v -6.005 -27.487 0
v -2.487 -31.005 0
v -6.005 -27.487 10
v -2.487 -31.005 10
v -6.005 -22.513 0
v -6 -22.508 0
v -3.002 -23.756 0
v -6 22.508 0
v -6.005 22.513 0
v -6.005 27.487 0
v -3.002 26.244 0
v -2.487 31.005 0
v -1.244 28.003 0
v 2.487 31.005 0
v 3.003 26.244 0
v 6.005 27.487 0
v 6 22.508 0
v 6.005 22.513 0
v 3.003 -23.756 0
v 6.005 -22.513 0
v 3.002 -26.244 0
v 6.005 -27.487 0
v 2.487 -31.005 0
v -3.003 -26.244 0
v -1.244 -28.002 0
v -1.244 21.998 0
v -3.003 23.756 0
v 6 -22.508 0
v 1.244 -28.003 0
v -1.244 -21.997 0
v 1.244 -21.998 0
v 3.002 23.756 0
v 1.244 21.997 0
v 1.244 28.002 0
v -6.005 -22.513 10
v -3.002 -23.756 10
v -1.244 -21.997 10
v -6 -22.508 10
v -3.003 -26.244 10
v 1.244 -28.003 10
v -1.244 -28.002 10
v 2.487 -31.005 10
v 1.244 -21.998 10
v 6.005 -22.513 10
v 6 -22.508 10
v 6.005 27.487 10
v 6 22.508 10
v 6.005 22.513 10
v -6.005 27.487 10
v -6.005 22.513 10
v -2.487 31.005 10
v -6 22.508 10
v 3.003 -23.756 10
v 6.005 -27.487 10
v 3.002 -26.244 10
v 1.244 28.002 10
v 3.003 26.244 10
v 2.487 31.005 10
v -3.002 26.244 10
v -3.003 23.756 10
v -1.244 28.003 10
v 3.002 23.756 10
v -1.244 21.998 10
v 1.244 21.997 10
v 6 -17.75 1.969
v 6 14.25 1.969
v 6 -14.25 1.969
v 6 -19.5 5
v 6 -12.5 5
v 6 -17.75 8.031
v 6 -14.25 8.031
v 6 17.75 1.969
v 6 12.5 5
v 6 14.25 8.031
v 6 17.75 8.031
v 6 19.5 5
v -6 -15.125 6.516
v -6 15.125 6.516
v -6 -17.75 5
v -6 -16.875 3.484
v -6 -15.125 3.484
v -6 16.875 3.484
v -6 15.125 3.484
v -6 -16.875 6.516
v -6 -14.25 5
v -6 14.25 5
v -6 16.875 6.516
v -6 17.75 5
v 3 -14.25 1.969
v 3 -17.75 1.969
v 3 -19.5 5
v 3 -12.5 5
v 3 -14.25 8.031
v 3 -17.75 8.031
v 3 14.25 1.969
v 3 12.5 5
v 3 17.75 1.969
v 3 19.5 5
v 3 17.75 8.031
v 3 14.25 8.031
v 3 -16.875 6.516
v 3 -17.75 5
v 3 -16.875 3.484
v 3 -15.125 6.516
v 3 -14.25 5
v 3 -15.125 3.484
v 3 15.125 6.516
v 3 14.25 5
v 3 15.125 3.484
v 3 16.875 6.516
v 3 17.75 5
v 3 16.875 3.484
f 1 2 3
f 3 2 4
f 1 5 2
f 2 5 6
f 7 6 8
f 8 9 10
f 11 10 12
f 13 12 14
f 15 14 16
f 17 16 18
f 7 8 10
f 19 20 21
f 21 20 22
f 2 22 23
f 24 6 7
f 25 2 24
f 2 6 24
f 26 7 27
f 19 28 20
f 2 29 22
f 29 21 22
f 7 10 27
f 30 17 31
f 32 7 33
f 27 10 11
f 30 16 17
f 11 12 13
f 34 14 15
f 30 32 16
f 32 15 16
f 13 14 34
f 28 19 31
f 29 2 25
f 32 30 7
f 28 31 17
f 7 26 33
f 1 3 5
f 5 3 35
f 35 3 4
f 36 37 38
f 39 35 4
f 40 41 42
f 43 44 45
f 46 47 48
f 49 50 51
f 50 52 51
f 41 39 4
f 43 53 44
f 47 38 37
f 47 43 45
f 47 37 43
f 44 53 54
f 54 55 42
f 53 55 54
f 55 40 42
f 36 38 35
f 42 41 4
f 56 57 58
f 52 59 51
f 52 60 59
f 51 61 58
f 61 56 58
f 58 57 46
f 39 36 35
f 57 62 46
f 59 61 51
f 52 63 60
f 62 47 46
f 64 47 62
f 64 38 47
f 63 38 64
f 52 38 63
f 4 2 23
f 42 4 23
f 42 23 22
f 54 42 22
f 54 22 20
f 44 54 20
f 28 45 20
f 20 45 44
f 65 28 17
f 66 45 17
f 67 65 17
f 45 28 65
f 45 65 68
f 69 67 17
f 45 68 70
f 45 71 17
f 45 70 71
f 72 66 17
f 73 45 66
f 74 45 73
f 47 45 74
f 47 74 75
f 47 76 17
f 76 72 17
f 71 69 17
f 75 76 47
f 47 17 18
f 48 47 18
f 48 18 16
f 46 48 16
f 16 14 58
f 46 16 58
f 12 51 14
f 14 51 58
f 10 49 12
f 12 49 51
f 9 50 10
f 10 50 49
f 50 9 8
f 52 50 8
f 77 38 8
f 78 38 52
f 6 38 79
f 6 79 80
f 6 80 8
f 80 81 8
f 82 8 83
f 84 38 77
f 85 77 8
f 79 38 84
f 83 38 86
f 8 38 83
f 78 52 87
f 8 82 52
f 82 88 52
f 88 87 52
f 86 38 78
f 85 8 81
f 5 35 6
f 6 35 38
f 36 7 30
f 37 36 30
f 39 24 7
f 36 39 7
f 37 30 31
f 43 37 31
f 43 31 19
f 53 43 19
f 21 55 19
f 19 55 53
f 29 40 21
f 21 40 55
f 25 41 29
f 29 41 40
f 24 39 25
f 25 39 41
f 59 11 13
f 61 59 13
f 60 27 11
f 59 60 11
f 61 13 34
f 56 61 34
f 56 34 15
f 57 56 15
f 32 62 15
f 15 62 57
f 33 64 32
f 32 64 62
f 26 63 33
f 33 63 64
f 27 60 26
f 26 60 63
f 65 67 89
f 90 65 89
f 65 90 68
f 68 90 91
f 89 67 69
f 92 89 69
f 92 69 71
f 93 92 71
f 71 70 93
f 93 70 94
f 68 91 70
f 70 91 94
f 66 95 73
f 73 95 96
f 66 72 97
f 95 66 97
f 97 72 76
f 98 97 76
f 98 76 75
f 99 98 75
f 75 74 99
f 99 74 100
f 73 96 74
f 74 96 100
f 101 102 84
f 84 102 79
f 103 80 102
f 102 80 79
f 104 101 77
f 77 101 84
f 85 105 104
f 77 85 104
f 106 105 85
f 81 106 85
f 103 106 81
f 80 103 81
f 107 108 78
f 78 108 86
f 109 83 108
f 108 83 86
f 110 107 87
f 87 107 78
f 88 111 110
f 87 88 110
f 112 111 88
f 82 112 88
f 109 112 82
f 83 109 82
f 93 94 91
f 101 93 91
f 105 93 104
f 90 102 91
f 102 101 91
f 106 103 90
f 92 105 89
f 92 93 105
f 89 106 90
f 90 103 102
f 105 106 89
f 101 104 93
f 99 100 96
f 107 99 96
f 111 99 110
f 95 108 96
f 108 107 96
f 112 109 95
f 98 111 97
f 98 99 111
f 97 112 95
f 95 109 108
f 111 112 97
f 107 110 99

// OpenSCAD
// file: configuration.scad
// default configuration
// m6 rods and nema14 motors

rod_size = 6;
rod_nut_size = 12; //12 for M6, 16 for M8
bearing_size = 12.5; //12 for LM6UU, 15 for LM8UU,LM8SUU
bearing_length = 20; //19 for LM6UU, 17 for LM8SUU, 24 for LM8UU
yz_motor_distance = 25;
motor_screw_spacing = 26; //26 for NEMA14, 31 for NEMA17
motor_casing = 38; //38 for NEMA14, 45 for NEMA17
end_height = 40;
bed_mount_height = 16;
//x_rod_spacing = motor_screw_spacing + 3 + rod_size;
x_rod_spacing = 30;
x_carriage_width = 70;
carriage_extruder_offset = 5;
pulley_size = 20;
idler_pulley_width = 10;
gusset_size = 15;
// main file
// y idler

include <configuration.scad>

module y_idler() difference() {
	linear_extrude(height = 10, convexity = 5) difference() {
		union() {
			square([rod_size * 2, motor_casing + rod_size * 2], center = true);
			for(side = [1, -1]) translate([0, side * (motor_casing / 2 + rod_size), rod_size / 2 + bearing_size / 2]) rotate(180 / 8) circle(rod_size * 13/12, h = yz_motor_distance + motor_casing + 20, center = true, $fn = 8);
		}
		for(side = [1, -1]) translate([0, side * (motor_casing / 2 + rod_size), rod_size / 2 + bearing_size / 2]) rotate(180 / 8) circle(rod_size * 13/24, h = yz_motor_distance + motor_casing + 20, center = true, $fn = 8);

	}
	rotate([90, 0, 90]) {
		for(side = [1, -1]) translate([side * (motor_casing / 2 - rod_size / 2), 5, -3]) {
			cylinder(r = 3 * 7/12, h = rod_size * 2, center = true, $fn = 6);
			translate([0, 0, rod_size]) cylinder(r = 3 * 7/6, h = 4, $fn = 6);
		}
		%translate([0, 5, -rod_size - idler_pulley_width / 2]) linear_extrude(height = 5, center = true, convexity = 5) for(side = [1, 0]) mirror([side, 0, 0]) {
			translate([-(motor_casing / 2 - rod_size / 2), 0, 0]) {
				intersection() {
					difference() {
						circle(pulley_size / 2 + 2);
						circle(pulley_size / 2);
					}
					square(pulley_size);
				}
				rotate(90) difference() {
					translate([2, 0, 0]) square([pulley_size / 2, 40]);
					square([pulley_size / 2, 40]);
				}
				rotate(-90) difference() {
					translate([0, 2, 0]) square([60 - yz_motor_distance / 2 - motor_screw_spacing / 2, pulley_size / 2]);
					square([60, pulley_size / 2]);
				}
			}
			translate([0, -(60 - yz_motor_distance / 2 - motor_screw_spacing / 2), 0]) difference() {
				circle(motor_casing / 2 - rod_size / 2 - pulley_size / 2);
				circle(motor_casing / 2 - rod_size / 2 - pulley_size / 2 - 2);
				translate([-(motor_casing / 2 - rod_size / 2 - pulley_size / 2), 0, 0]) square(motor_casing - rod_size - pulley_size);
			}
		}
	}
}

y_idler();
